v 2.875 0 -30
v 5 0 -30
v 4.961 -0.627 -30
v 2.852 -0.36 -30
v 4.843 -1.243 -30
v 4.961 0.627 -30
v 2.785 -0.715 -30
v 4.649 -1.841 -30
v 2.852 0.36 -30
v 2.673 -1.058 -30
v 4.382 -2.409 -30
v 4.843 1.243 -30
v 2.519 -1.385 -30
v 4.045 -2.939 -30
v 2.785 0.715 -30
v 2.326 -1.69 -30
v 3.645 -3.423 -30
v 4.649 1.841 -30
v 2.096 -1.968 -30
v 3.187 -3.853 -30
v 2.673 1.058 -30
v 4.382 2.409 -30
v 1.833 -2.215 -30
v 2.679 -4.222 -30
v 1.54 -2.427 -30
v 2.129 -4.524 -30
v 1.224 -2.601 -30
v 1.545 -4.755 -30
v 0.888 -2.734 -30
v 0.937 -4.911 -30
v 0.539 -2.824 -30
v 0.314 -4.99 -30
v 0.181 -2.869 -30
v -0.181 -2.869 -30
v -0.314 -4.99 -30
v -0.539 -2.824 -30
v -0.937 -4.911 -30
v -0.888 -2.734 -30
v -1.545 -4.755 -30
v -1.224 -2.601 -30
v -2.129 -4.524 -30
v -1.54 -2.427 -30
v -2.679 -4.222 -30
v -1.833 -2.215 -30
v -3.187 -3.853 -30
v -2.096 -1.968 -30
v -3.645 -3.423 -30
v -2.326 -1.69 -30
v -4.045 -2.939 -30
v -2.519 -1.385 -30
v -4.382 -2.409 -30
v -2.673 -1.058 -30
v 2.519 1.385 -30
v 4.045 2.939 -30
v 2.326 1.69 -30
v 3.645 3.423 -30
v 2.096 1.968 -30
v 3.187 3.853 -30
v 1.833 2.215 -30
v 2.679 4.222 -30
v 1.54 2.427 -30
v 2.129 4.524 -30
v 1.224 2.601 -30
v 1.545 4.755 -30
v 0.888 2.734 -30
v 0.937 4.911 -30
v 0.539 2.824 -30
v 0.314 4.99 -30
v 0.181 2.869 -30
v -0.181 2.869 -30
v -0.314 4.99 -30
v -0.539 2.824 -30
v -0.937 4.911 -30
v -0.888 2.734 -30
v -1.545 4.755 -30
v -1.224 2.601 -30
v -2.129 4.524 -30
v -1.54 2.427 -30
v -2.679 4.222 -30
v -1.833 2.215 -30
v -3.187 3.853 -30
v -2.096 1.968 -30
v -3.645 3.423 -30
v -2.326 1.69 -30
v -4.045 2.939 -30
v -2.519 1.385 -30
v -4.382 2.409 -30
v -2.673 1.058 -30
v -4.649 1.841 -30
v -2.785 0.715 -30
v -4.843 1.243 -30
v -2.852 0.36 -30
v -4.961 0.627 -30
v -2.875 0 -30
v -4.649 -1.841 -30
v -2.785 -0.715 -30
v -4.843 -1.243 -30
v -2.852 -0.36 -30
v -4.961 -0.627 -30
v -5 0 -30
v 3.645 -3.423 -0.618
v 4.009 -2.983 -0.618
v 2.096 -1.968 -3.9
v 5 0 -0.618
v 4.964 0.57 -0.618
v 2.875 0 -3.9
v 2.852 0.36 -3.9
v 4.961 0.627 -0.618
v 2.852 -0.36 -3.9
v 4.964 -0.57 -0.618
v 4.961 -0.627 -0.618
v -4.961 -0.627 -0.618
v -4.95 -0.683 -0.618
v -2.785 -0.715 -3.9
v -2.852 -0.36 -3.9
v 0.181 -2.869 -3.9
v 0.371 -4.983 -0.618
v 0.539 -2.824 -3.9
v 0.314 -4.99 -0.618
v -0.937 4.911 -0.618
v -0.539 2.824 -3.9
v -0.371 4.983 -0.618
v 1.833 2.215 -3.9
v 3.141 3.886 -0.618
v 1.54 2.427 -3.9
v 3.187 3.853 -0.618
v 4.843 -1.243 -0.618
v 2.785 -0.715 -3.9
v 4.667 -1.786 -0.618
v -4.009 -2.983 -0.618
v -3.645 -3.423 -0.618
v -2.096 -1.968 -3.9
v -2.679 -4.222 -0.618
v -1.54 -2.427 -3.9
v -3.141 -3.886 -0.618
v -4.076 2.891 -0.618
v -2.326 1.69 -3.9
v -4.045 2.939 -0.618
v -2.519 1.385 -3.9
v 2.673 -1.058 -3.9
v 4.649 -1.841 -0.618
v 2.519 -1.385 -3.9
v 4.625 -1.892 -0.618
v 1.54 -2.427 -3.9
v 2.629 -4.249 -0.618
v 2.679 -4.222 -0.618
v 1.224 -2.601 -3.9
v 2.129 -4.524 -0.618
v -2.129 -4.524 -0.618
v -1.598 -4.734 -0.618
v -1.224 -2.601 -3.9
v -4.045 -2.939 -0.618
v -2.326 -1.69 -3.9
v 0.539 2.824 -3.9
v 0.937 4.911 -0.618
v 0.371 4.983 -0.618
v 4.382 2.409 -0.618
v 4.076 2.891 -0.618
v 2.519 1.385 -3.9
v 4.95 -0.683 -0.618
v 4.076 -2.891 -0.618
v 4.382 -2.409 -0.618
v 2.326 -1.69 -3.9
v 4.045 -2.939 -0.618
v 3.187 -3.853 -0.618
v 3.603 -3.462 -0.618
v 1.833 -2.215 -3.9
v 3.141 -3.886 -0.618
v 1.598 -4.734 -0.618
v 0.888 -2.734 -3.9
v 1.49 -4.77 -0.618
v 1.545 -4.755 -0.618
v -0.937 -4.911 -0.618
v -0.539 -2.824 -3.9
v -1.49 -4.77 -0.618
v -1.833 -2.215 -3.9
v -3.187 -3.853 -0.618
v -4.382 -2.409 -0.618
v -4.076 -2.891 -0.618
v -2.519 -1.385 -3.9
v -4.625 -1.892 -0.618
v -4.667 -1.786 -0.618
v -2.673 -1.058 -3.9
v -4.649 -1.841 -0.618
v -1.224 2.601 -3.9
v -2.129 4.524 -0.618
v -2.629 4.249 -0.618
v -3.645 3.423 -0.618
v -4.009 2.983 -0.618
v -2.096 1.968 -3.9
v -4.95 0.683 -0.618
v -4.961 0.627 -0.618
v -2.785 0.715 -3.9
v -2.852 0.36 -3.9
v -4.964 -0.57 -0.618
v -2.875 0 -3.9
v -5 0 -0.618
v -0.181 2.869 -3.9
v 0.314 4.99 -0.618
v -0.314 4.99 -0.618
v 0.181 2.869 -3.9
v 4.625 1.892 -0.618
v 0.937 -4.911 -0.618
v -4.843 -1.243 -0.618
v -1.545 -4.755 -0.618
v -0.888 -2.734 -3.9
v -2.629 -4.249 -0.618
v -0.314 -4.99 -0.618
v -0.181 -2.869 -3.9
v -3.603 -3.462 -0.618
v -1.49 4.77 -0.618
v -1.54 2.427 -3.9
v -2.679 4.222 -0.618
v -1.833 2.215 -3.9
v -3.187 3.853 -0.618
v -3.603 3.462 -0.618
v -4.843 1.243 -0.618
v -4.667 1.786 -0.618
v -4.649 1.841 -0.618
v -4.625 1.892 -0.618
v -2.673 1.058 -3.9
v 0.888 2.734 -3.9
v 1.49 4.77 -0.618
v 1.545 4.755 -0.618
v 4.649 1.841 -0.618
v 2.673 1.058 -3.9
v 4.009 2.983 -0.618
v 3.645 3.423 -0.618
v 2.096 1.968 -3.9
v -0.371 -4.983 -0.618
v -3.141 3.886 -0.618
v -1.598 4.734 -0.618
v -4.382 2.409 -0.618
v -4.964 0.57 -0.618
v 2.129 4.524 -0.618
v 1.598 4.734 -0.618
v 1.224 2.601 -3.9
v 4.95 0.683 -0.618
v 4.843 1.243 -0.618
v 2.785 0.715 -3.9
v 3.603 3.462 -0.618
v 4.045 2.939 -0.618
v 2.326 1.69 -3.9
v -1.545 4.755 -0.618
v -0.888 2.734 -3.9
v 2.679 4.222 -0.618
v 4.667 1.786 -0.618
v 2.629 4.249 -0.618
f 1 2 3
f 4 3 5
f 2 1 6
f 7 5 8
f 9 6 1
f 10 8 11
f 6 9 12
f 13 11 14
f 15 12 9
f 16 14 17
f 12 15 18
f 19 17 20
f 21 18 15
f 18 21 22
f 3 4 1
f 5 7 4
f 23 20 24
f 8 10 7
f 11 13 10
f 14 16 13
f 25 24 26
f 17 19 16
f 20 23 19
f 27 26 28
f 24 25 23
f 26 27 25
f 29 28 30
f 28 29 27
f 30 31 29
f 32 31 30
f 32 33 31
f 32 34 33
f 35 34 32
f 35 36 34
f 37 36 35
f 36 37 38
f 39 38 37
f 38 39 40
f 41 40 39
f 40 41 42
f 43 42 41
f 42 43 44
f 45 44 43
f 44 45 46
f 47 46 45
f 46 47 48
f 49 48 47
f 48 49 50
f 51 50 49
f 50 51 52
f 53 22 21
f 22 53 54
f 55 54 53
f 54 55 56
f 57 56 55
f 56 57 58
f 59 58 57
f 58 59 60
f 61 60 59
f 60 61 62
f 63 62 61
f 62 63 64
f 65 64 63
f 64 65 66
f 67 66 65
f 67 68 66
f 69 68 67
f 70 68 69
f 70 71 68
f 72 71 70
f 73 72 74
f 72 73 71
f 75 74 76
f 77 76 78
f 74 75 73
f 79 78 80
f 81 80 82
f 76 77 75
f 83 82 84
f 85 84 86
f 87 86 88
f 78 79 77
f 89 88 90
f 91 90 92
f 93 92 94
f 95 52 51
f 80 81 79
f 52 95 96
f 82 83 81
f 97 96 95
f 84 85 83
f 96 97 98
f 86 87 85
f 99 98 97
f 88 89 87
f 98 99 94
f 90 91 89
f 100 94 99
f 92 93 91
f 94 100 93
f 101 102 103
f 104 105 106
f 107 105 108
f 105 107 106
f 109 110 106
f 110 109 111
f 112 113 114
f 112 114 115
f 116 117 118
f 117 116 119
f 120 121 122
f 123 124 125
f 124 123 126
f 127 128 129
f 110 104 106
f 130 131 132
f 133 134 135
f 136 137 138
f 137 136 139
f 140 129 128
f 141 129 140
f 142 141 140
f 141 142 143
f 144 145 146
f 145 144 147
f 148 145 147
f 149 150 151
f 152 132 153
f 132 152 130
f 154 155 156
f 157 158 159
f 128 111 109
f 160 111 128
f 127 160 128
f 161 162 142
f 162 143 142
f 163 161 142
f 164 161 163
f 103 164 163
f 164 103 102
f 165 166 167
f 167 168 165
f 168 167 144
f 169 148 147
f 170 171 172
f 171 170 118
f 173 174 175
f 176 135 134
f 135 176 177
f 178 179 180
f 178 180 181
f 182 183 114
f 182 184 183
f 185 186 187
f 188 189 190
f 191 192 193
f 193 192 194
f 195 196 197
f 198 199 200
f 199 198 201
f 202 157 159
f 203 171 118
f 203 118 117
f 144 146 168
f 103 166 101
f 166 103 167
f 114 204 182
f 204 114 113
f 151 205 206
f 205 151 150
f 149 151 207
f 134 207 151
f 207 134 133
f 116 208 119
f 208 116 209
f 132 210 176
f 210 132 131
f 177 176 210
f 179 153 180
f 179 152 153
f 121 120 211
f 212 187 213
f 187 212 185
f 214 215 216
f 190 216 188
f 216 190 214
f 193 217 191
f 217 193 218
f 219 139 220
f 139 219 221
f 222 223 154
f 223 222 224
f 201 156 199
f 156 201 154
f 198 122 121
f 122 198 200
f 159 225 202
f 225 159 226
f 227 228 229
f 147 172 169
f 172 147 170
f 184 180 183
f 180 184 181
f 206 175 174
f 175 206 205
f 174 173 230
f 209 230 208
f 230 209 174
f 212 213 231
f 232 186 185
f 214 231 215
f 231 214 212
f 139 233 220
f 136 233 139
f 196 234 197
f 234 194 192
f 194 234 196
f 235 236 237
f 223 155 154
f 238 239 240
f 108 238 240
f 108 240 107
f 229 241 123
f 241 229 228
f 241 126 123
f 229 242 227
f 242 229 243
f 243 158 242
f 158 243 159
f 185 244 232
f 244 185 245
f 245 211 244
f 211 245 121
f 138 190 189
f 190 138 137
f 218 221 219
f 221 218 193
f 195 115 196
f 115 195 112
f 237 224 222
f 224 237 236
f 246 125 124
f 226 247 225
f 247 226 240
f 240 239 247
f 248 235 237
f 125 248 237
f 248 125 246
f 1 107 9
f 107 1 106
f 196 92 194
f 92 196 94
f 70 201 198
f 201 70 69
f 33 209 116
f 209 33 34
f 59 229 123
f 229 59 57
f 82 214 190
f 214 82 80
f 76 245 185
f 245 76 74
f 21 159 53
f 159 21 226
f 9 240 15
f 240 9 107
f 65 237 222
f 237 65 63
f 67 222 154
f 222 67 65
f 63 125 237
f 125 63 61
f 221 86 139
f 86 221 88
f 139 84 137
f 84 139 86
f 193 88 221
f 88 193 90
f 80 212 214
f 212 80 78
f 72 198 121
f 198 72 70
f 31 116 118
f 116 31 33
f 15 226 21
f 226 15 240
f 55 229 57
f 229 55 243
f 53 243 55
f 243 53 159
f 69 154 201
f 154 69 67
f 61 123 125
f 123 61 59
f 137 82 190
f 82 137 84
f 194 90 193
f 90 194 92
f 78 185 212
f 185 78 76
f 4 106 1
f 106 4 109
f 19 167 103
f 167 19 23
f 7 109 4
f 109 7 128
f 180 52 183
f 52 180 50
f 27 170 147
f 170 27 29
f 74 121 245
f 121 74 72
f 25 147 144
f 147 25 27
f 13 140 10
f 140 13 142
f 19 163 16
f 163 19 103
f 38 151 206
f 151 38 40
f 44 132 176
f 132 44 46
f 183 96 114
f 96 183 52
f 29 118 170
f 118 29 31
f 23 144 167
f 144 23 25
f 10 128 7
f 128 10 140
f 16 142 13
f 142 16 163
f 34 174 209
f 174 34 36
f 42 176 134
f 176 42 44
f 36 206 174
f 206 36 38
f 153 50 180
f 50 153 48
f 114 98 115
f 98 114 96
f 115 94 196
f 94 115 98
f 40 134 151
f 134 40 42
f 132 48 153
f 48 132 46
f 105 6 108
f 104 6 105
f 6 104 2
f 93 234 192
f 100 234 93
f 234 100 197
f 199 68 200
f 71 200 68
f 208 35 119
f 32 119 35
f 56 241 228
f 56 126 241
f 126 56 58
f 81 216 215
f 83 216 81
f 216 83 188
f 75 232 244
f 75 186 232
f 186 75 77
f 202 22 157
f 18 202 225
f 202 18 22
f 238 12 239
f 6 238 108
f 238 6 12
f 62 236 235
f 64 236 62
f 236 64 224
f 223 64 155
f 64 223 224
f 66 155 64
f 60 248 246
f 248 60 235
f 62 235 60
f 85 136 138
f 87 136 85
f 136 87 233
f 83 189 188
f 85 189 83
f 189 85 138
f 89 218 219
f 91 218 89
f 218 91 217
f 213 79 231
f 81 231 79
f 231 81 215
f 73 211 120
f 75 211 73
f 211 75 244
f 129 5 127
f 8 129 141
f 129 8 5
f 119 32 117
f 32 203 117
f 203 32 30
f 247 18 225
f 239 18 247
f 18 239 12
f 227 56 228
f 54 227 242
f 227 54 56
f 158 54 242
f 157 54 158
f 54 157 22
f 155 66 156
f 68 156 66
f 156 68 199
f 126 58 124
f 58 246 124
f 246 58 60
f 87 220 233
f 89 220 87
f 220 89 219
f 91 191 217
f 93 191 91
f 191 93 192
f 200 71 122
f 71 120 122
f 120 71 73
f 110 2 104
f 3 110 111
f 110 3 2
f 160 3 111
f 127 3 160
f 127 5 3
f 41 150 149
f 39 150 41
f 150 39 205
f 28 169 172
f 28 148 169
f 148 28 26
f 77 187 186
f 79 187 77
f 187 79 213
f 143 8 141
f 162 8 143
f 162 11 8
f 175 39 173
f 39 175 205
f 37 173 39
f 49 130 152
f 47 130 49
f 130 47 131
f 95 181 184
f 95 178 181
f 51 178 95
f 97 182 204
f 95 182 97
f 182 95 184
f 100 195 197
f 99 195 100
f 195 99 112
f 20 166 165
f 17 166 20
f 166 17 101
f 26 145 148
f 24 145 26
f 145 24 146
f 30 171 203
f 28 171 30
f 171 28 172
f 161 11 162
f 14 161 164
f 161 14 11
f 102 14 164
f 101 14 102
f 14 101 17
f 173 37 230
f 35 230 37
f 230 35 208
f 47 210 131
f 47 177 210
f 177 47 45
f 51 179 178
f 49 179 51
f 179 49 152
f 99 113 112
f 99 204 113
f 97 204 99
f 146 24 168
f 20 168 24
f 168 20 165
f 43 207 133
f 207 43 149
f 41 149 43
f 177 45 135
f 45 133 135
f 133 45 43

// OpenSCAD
$fn = 50;


difference() {
	union() {
		translate(v = [0, 0, -30.0000000000]) {
			cylinder(h = 30, r = 5.0000000000);
		}
		cylinder(h = 0, r = 8.0000000000);
	}
	union() {
		translate(v = [0, 0, 0]) {
			rotate(a = [0, 0, 0]) {
				difference() {
					union() {
						#translate(v = [0, 0, -30.0000000000]) {
							cylinder(h = 30, r = 2.6000000000);
						}
						#translate(v = [0, 0, -3.9000000000]) {
							cylinder(h = 3.9000000000, r = 5.0000000000, r1 = 2.8750000000, r2 = 5.4000000000);
						}
						#translate(v = [0, 0, -30.0000000000]) {
							cylinder(h = 30, r = 2.8750000000);
						}
						#translate(v = [0, 0, -30.0000000000]) {
							cylinder(h = 30, r = 2.6000000000);
						}
					}
					union();
				}
			}
		}
	}
}
